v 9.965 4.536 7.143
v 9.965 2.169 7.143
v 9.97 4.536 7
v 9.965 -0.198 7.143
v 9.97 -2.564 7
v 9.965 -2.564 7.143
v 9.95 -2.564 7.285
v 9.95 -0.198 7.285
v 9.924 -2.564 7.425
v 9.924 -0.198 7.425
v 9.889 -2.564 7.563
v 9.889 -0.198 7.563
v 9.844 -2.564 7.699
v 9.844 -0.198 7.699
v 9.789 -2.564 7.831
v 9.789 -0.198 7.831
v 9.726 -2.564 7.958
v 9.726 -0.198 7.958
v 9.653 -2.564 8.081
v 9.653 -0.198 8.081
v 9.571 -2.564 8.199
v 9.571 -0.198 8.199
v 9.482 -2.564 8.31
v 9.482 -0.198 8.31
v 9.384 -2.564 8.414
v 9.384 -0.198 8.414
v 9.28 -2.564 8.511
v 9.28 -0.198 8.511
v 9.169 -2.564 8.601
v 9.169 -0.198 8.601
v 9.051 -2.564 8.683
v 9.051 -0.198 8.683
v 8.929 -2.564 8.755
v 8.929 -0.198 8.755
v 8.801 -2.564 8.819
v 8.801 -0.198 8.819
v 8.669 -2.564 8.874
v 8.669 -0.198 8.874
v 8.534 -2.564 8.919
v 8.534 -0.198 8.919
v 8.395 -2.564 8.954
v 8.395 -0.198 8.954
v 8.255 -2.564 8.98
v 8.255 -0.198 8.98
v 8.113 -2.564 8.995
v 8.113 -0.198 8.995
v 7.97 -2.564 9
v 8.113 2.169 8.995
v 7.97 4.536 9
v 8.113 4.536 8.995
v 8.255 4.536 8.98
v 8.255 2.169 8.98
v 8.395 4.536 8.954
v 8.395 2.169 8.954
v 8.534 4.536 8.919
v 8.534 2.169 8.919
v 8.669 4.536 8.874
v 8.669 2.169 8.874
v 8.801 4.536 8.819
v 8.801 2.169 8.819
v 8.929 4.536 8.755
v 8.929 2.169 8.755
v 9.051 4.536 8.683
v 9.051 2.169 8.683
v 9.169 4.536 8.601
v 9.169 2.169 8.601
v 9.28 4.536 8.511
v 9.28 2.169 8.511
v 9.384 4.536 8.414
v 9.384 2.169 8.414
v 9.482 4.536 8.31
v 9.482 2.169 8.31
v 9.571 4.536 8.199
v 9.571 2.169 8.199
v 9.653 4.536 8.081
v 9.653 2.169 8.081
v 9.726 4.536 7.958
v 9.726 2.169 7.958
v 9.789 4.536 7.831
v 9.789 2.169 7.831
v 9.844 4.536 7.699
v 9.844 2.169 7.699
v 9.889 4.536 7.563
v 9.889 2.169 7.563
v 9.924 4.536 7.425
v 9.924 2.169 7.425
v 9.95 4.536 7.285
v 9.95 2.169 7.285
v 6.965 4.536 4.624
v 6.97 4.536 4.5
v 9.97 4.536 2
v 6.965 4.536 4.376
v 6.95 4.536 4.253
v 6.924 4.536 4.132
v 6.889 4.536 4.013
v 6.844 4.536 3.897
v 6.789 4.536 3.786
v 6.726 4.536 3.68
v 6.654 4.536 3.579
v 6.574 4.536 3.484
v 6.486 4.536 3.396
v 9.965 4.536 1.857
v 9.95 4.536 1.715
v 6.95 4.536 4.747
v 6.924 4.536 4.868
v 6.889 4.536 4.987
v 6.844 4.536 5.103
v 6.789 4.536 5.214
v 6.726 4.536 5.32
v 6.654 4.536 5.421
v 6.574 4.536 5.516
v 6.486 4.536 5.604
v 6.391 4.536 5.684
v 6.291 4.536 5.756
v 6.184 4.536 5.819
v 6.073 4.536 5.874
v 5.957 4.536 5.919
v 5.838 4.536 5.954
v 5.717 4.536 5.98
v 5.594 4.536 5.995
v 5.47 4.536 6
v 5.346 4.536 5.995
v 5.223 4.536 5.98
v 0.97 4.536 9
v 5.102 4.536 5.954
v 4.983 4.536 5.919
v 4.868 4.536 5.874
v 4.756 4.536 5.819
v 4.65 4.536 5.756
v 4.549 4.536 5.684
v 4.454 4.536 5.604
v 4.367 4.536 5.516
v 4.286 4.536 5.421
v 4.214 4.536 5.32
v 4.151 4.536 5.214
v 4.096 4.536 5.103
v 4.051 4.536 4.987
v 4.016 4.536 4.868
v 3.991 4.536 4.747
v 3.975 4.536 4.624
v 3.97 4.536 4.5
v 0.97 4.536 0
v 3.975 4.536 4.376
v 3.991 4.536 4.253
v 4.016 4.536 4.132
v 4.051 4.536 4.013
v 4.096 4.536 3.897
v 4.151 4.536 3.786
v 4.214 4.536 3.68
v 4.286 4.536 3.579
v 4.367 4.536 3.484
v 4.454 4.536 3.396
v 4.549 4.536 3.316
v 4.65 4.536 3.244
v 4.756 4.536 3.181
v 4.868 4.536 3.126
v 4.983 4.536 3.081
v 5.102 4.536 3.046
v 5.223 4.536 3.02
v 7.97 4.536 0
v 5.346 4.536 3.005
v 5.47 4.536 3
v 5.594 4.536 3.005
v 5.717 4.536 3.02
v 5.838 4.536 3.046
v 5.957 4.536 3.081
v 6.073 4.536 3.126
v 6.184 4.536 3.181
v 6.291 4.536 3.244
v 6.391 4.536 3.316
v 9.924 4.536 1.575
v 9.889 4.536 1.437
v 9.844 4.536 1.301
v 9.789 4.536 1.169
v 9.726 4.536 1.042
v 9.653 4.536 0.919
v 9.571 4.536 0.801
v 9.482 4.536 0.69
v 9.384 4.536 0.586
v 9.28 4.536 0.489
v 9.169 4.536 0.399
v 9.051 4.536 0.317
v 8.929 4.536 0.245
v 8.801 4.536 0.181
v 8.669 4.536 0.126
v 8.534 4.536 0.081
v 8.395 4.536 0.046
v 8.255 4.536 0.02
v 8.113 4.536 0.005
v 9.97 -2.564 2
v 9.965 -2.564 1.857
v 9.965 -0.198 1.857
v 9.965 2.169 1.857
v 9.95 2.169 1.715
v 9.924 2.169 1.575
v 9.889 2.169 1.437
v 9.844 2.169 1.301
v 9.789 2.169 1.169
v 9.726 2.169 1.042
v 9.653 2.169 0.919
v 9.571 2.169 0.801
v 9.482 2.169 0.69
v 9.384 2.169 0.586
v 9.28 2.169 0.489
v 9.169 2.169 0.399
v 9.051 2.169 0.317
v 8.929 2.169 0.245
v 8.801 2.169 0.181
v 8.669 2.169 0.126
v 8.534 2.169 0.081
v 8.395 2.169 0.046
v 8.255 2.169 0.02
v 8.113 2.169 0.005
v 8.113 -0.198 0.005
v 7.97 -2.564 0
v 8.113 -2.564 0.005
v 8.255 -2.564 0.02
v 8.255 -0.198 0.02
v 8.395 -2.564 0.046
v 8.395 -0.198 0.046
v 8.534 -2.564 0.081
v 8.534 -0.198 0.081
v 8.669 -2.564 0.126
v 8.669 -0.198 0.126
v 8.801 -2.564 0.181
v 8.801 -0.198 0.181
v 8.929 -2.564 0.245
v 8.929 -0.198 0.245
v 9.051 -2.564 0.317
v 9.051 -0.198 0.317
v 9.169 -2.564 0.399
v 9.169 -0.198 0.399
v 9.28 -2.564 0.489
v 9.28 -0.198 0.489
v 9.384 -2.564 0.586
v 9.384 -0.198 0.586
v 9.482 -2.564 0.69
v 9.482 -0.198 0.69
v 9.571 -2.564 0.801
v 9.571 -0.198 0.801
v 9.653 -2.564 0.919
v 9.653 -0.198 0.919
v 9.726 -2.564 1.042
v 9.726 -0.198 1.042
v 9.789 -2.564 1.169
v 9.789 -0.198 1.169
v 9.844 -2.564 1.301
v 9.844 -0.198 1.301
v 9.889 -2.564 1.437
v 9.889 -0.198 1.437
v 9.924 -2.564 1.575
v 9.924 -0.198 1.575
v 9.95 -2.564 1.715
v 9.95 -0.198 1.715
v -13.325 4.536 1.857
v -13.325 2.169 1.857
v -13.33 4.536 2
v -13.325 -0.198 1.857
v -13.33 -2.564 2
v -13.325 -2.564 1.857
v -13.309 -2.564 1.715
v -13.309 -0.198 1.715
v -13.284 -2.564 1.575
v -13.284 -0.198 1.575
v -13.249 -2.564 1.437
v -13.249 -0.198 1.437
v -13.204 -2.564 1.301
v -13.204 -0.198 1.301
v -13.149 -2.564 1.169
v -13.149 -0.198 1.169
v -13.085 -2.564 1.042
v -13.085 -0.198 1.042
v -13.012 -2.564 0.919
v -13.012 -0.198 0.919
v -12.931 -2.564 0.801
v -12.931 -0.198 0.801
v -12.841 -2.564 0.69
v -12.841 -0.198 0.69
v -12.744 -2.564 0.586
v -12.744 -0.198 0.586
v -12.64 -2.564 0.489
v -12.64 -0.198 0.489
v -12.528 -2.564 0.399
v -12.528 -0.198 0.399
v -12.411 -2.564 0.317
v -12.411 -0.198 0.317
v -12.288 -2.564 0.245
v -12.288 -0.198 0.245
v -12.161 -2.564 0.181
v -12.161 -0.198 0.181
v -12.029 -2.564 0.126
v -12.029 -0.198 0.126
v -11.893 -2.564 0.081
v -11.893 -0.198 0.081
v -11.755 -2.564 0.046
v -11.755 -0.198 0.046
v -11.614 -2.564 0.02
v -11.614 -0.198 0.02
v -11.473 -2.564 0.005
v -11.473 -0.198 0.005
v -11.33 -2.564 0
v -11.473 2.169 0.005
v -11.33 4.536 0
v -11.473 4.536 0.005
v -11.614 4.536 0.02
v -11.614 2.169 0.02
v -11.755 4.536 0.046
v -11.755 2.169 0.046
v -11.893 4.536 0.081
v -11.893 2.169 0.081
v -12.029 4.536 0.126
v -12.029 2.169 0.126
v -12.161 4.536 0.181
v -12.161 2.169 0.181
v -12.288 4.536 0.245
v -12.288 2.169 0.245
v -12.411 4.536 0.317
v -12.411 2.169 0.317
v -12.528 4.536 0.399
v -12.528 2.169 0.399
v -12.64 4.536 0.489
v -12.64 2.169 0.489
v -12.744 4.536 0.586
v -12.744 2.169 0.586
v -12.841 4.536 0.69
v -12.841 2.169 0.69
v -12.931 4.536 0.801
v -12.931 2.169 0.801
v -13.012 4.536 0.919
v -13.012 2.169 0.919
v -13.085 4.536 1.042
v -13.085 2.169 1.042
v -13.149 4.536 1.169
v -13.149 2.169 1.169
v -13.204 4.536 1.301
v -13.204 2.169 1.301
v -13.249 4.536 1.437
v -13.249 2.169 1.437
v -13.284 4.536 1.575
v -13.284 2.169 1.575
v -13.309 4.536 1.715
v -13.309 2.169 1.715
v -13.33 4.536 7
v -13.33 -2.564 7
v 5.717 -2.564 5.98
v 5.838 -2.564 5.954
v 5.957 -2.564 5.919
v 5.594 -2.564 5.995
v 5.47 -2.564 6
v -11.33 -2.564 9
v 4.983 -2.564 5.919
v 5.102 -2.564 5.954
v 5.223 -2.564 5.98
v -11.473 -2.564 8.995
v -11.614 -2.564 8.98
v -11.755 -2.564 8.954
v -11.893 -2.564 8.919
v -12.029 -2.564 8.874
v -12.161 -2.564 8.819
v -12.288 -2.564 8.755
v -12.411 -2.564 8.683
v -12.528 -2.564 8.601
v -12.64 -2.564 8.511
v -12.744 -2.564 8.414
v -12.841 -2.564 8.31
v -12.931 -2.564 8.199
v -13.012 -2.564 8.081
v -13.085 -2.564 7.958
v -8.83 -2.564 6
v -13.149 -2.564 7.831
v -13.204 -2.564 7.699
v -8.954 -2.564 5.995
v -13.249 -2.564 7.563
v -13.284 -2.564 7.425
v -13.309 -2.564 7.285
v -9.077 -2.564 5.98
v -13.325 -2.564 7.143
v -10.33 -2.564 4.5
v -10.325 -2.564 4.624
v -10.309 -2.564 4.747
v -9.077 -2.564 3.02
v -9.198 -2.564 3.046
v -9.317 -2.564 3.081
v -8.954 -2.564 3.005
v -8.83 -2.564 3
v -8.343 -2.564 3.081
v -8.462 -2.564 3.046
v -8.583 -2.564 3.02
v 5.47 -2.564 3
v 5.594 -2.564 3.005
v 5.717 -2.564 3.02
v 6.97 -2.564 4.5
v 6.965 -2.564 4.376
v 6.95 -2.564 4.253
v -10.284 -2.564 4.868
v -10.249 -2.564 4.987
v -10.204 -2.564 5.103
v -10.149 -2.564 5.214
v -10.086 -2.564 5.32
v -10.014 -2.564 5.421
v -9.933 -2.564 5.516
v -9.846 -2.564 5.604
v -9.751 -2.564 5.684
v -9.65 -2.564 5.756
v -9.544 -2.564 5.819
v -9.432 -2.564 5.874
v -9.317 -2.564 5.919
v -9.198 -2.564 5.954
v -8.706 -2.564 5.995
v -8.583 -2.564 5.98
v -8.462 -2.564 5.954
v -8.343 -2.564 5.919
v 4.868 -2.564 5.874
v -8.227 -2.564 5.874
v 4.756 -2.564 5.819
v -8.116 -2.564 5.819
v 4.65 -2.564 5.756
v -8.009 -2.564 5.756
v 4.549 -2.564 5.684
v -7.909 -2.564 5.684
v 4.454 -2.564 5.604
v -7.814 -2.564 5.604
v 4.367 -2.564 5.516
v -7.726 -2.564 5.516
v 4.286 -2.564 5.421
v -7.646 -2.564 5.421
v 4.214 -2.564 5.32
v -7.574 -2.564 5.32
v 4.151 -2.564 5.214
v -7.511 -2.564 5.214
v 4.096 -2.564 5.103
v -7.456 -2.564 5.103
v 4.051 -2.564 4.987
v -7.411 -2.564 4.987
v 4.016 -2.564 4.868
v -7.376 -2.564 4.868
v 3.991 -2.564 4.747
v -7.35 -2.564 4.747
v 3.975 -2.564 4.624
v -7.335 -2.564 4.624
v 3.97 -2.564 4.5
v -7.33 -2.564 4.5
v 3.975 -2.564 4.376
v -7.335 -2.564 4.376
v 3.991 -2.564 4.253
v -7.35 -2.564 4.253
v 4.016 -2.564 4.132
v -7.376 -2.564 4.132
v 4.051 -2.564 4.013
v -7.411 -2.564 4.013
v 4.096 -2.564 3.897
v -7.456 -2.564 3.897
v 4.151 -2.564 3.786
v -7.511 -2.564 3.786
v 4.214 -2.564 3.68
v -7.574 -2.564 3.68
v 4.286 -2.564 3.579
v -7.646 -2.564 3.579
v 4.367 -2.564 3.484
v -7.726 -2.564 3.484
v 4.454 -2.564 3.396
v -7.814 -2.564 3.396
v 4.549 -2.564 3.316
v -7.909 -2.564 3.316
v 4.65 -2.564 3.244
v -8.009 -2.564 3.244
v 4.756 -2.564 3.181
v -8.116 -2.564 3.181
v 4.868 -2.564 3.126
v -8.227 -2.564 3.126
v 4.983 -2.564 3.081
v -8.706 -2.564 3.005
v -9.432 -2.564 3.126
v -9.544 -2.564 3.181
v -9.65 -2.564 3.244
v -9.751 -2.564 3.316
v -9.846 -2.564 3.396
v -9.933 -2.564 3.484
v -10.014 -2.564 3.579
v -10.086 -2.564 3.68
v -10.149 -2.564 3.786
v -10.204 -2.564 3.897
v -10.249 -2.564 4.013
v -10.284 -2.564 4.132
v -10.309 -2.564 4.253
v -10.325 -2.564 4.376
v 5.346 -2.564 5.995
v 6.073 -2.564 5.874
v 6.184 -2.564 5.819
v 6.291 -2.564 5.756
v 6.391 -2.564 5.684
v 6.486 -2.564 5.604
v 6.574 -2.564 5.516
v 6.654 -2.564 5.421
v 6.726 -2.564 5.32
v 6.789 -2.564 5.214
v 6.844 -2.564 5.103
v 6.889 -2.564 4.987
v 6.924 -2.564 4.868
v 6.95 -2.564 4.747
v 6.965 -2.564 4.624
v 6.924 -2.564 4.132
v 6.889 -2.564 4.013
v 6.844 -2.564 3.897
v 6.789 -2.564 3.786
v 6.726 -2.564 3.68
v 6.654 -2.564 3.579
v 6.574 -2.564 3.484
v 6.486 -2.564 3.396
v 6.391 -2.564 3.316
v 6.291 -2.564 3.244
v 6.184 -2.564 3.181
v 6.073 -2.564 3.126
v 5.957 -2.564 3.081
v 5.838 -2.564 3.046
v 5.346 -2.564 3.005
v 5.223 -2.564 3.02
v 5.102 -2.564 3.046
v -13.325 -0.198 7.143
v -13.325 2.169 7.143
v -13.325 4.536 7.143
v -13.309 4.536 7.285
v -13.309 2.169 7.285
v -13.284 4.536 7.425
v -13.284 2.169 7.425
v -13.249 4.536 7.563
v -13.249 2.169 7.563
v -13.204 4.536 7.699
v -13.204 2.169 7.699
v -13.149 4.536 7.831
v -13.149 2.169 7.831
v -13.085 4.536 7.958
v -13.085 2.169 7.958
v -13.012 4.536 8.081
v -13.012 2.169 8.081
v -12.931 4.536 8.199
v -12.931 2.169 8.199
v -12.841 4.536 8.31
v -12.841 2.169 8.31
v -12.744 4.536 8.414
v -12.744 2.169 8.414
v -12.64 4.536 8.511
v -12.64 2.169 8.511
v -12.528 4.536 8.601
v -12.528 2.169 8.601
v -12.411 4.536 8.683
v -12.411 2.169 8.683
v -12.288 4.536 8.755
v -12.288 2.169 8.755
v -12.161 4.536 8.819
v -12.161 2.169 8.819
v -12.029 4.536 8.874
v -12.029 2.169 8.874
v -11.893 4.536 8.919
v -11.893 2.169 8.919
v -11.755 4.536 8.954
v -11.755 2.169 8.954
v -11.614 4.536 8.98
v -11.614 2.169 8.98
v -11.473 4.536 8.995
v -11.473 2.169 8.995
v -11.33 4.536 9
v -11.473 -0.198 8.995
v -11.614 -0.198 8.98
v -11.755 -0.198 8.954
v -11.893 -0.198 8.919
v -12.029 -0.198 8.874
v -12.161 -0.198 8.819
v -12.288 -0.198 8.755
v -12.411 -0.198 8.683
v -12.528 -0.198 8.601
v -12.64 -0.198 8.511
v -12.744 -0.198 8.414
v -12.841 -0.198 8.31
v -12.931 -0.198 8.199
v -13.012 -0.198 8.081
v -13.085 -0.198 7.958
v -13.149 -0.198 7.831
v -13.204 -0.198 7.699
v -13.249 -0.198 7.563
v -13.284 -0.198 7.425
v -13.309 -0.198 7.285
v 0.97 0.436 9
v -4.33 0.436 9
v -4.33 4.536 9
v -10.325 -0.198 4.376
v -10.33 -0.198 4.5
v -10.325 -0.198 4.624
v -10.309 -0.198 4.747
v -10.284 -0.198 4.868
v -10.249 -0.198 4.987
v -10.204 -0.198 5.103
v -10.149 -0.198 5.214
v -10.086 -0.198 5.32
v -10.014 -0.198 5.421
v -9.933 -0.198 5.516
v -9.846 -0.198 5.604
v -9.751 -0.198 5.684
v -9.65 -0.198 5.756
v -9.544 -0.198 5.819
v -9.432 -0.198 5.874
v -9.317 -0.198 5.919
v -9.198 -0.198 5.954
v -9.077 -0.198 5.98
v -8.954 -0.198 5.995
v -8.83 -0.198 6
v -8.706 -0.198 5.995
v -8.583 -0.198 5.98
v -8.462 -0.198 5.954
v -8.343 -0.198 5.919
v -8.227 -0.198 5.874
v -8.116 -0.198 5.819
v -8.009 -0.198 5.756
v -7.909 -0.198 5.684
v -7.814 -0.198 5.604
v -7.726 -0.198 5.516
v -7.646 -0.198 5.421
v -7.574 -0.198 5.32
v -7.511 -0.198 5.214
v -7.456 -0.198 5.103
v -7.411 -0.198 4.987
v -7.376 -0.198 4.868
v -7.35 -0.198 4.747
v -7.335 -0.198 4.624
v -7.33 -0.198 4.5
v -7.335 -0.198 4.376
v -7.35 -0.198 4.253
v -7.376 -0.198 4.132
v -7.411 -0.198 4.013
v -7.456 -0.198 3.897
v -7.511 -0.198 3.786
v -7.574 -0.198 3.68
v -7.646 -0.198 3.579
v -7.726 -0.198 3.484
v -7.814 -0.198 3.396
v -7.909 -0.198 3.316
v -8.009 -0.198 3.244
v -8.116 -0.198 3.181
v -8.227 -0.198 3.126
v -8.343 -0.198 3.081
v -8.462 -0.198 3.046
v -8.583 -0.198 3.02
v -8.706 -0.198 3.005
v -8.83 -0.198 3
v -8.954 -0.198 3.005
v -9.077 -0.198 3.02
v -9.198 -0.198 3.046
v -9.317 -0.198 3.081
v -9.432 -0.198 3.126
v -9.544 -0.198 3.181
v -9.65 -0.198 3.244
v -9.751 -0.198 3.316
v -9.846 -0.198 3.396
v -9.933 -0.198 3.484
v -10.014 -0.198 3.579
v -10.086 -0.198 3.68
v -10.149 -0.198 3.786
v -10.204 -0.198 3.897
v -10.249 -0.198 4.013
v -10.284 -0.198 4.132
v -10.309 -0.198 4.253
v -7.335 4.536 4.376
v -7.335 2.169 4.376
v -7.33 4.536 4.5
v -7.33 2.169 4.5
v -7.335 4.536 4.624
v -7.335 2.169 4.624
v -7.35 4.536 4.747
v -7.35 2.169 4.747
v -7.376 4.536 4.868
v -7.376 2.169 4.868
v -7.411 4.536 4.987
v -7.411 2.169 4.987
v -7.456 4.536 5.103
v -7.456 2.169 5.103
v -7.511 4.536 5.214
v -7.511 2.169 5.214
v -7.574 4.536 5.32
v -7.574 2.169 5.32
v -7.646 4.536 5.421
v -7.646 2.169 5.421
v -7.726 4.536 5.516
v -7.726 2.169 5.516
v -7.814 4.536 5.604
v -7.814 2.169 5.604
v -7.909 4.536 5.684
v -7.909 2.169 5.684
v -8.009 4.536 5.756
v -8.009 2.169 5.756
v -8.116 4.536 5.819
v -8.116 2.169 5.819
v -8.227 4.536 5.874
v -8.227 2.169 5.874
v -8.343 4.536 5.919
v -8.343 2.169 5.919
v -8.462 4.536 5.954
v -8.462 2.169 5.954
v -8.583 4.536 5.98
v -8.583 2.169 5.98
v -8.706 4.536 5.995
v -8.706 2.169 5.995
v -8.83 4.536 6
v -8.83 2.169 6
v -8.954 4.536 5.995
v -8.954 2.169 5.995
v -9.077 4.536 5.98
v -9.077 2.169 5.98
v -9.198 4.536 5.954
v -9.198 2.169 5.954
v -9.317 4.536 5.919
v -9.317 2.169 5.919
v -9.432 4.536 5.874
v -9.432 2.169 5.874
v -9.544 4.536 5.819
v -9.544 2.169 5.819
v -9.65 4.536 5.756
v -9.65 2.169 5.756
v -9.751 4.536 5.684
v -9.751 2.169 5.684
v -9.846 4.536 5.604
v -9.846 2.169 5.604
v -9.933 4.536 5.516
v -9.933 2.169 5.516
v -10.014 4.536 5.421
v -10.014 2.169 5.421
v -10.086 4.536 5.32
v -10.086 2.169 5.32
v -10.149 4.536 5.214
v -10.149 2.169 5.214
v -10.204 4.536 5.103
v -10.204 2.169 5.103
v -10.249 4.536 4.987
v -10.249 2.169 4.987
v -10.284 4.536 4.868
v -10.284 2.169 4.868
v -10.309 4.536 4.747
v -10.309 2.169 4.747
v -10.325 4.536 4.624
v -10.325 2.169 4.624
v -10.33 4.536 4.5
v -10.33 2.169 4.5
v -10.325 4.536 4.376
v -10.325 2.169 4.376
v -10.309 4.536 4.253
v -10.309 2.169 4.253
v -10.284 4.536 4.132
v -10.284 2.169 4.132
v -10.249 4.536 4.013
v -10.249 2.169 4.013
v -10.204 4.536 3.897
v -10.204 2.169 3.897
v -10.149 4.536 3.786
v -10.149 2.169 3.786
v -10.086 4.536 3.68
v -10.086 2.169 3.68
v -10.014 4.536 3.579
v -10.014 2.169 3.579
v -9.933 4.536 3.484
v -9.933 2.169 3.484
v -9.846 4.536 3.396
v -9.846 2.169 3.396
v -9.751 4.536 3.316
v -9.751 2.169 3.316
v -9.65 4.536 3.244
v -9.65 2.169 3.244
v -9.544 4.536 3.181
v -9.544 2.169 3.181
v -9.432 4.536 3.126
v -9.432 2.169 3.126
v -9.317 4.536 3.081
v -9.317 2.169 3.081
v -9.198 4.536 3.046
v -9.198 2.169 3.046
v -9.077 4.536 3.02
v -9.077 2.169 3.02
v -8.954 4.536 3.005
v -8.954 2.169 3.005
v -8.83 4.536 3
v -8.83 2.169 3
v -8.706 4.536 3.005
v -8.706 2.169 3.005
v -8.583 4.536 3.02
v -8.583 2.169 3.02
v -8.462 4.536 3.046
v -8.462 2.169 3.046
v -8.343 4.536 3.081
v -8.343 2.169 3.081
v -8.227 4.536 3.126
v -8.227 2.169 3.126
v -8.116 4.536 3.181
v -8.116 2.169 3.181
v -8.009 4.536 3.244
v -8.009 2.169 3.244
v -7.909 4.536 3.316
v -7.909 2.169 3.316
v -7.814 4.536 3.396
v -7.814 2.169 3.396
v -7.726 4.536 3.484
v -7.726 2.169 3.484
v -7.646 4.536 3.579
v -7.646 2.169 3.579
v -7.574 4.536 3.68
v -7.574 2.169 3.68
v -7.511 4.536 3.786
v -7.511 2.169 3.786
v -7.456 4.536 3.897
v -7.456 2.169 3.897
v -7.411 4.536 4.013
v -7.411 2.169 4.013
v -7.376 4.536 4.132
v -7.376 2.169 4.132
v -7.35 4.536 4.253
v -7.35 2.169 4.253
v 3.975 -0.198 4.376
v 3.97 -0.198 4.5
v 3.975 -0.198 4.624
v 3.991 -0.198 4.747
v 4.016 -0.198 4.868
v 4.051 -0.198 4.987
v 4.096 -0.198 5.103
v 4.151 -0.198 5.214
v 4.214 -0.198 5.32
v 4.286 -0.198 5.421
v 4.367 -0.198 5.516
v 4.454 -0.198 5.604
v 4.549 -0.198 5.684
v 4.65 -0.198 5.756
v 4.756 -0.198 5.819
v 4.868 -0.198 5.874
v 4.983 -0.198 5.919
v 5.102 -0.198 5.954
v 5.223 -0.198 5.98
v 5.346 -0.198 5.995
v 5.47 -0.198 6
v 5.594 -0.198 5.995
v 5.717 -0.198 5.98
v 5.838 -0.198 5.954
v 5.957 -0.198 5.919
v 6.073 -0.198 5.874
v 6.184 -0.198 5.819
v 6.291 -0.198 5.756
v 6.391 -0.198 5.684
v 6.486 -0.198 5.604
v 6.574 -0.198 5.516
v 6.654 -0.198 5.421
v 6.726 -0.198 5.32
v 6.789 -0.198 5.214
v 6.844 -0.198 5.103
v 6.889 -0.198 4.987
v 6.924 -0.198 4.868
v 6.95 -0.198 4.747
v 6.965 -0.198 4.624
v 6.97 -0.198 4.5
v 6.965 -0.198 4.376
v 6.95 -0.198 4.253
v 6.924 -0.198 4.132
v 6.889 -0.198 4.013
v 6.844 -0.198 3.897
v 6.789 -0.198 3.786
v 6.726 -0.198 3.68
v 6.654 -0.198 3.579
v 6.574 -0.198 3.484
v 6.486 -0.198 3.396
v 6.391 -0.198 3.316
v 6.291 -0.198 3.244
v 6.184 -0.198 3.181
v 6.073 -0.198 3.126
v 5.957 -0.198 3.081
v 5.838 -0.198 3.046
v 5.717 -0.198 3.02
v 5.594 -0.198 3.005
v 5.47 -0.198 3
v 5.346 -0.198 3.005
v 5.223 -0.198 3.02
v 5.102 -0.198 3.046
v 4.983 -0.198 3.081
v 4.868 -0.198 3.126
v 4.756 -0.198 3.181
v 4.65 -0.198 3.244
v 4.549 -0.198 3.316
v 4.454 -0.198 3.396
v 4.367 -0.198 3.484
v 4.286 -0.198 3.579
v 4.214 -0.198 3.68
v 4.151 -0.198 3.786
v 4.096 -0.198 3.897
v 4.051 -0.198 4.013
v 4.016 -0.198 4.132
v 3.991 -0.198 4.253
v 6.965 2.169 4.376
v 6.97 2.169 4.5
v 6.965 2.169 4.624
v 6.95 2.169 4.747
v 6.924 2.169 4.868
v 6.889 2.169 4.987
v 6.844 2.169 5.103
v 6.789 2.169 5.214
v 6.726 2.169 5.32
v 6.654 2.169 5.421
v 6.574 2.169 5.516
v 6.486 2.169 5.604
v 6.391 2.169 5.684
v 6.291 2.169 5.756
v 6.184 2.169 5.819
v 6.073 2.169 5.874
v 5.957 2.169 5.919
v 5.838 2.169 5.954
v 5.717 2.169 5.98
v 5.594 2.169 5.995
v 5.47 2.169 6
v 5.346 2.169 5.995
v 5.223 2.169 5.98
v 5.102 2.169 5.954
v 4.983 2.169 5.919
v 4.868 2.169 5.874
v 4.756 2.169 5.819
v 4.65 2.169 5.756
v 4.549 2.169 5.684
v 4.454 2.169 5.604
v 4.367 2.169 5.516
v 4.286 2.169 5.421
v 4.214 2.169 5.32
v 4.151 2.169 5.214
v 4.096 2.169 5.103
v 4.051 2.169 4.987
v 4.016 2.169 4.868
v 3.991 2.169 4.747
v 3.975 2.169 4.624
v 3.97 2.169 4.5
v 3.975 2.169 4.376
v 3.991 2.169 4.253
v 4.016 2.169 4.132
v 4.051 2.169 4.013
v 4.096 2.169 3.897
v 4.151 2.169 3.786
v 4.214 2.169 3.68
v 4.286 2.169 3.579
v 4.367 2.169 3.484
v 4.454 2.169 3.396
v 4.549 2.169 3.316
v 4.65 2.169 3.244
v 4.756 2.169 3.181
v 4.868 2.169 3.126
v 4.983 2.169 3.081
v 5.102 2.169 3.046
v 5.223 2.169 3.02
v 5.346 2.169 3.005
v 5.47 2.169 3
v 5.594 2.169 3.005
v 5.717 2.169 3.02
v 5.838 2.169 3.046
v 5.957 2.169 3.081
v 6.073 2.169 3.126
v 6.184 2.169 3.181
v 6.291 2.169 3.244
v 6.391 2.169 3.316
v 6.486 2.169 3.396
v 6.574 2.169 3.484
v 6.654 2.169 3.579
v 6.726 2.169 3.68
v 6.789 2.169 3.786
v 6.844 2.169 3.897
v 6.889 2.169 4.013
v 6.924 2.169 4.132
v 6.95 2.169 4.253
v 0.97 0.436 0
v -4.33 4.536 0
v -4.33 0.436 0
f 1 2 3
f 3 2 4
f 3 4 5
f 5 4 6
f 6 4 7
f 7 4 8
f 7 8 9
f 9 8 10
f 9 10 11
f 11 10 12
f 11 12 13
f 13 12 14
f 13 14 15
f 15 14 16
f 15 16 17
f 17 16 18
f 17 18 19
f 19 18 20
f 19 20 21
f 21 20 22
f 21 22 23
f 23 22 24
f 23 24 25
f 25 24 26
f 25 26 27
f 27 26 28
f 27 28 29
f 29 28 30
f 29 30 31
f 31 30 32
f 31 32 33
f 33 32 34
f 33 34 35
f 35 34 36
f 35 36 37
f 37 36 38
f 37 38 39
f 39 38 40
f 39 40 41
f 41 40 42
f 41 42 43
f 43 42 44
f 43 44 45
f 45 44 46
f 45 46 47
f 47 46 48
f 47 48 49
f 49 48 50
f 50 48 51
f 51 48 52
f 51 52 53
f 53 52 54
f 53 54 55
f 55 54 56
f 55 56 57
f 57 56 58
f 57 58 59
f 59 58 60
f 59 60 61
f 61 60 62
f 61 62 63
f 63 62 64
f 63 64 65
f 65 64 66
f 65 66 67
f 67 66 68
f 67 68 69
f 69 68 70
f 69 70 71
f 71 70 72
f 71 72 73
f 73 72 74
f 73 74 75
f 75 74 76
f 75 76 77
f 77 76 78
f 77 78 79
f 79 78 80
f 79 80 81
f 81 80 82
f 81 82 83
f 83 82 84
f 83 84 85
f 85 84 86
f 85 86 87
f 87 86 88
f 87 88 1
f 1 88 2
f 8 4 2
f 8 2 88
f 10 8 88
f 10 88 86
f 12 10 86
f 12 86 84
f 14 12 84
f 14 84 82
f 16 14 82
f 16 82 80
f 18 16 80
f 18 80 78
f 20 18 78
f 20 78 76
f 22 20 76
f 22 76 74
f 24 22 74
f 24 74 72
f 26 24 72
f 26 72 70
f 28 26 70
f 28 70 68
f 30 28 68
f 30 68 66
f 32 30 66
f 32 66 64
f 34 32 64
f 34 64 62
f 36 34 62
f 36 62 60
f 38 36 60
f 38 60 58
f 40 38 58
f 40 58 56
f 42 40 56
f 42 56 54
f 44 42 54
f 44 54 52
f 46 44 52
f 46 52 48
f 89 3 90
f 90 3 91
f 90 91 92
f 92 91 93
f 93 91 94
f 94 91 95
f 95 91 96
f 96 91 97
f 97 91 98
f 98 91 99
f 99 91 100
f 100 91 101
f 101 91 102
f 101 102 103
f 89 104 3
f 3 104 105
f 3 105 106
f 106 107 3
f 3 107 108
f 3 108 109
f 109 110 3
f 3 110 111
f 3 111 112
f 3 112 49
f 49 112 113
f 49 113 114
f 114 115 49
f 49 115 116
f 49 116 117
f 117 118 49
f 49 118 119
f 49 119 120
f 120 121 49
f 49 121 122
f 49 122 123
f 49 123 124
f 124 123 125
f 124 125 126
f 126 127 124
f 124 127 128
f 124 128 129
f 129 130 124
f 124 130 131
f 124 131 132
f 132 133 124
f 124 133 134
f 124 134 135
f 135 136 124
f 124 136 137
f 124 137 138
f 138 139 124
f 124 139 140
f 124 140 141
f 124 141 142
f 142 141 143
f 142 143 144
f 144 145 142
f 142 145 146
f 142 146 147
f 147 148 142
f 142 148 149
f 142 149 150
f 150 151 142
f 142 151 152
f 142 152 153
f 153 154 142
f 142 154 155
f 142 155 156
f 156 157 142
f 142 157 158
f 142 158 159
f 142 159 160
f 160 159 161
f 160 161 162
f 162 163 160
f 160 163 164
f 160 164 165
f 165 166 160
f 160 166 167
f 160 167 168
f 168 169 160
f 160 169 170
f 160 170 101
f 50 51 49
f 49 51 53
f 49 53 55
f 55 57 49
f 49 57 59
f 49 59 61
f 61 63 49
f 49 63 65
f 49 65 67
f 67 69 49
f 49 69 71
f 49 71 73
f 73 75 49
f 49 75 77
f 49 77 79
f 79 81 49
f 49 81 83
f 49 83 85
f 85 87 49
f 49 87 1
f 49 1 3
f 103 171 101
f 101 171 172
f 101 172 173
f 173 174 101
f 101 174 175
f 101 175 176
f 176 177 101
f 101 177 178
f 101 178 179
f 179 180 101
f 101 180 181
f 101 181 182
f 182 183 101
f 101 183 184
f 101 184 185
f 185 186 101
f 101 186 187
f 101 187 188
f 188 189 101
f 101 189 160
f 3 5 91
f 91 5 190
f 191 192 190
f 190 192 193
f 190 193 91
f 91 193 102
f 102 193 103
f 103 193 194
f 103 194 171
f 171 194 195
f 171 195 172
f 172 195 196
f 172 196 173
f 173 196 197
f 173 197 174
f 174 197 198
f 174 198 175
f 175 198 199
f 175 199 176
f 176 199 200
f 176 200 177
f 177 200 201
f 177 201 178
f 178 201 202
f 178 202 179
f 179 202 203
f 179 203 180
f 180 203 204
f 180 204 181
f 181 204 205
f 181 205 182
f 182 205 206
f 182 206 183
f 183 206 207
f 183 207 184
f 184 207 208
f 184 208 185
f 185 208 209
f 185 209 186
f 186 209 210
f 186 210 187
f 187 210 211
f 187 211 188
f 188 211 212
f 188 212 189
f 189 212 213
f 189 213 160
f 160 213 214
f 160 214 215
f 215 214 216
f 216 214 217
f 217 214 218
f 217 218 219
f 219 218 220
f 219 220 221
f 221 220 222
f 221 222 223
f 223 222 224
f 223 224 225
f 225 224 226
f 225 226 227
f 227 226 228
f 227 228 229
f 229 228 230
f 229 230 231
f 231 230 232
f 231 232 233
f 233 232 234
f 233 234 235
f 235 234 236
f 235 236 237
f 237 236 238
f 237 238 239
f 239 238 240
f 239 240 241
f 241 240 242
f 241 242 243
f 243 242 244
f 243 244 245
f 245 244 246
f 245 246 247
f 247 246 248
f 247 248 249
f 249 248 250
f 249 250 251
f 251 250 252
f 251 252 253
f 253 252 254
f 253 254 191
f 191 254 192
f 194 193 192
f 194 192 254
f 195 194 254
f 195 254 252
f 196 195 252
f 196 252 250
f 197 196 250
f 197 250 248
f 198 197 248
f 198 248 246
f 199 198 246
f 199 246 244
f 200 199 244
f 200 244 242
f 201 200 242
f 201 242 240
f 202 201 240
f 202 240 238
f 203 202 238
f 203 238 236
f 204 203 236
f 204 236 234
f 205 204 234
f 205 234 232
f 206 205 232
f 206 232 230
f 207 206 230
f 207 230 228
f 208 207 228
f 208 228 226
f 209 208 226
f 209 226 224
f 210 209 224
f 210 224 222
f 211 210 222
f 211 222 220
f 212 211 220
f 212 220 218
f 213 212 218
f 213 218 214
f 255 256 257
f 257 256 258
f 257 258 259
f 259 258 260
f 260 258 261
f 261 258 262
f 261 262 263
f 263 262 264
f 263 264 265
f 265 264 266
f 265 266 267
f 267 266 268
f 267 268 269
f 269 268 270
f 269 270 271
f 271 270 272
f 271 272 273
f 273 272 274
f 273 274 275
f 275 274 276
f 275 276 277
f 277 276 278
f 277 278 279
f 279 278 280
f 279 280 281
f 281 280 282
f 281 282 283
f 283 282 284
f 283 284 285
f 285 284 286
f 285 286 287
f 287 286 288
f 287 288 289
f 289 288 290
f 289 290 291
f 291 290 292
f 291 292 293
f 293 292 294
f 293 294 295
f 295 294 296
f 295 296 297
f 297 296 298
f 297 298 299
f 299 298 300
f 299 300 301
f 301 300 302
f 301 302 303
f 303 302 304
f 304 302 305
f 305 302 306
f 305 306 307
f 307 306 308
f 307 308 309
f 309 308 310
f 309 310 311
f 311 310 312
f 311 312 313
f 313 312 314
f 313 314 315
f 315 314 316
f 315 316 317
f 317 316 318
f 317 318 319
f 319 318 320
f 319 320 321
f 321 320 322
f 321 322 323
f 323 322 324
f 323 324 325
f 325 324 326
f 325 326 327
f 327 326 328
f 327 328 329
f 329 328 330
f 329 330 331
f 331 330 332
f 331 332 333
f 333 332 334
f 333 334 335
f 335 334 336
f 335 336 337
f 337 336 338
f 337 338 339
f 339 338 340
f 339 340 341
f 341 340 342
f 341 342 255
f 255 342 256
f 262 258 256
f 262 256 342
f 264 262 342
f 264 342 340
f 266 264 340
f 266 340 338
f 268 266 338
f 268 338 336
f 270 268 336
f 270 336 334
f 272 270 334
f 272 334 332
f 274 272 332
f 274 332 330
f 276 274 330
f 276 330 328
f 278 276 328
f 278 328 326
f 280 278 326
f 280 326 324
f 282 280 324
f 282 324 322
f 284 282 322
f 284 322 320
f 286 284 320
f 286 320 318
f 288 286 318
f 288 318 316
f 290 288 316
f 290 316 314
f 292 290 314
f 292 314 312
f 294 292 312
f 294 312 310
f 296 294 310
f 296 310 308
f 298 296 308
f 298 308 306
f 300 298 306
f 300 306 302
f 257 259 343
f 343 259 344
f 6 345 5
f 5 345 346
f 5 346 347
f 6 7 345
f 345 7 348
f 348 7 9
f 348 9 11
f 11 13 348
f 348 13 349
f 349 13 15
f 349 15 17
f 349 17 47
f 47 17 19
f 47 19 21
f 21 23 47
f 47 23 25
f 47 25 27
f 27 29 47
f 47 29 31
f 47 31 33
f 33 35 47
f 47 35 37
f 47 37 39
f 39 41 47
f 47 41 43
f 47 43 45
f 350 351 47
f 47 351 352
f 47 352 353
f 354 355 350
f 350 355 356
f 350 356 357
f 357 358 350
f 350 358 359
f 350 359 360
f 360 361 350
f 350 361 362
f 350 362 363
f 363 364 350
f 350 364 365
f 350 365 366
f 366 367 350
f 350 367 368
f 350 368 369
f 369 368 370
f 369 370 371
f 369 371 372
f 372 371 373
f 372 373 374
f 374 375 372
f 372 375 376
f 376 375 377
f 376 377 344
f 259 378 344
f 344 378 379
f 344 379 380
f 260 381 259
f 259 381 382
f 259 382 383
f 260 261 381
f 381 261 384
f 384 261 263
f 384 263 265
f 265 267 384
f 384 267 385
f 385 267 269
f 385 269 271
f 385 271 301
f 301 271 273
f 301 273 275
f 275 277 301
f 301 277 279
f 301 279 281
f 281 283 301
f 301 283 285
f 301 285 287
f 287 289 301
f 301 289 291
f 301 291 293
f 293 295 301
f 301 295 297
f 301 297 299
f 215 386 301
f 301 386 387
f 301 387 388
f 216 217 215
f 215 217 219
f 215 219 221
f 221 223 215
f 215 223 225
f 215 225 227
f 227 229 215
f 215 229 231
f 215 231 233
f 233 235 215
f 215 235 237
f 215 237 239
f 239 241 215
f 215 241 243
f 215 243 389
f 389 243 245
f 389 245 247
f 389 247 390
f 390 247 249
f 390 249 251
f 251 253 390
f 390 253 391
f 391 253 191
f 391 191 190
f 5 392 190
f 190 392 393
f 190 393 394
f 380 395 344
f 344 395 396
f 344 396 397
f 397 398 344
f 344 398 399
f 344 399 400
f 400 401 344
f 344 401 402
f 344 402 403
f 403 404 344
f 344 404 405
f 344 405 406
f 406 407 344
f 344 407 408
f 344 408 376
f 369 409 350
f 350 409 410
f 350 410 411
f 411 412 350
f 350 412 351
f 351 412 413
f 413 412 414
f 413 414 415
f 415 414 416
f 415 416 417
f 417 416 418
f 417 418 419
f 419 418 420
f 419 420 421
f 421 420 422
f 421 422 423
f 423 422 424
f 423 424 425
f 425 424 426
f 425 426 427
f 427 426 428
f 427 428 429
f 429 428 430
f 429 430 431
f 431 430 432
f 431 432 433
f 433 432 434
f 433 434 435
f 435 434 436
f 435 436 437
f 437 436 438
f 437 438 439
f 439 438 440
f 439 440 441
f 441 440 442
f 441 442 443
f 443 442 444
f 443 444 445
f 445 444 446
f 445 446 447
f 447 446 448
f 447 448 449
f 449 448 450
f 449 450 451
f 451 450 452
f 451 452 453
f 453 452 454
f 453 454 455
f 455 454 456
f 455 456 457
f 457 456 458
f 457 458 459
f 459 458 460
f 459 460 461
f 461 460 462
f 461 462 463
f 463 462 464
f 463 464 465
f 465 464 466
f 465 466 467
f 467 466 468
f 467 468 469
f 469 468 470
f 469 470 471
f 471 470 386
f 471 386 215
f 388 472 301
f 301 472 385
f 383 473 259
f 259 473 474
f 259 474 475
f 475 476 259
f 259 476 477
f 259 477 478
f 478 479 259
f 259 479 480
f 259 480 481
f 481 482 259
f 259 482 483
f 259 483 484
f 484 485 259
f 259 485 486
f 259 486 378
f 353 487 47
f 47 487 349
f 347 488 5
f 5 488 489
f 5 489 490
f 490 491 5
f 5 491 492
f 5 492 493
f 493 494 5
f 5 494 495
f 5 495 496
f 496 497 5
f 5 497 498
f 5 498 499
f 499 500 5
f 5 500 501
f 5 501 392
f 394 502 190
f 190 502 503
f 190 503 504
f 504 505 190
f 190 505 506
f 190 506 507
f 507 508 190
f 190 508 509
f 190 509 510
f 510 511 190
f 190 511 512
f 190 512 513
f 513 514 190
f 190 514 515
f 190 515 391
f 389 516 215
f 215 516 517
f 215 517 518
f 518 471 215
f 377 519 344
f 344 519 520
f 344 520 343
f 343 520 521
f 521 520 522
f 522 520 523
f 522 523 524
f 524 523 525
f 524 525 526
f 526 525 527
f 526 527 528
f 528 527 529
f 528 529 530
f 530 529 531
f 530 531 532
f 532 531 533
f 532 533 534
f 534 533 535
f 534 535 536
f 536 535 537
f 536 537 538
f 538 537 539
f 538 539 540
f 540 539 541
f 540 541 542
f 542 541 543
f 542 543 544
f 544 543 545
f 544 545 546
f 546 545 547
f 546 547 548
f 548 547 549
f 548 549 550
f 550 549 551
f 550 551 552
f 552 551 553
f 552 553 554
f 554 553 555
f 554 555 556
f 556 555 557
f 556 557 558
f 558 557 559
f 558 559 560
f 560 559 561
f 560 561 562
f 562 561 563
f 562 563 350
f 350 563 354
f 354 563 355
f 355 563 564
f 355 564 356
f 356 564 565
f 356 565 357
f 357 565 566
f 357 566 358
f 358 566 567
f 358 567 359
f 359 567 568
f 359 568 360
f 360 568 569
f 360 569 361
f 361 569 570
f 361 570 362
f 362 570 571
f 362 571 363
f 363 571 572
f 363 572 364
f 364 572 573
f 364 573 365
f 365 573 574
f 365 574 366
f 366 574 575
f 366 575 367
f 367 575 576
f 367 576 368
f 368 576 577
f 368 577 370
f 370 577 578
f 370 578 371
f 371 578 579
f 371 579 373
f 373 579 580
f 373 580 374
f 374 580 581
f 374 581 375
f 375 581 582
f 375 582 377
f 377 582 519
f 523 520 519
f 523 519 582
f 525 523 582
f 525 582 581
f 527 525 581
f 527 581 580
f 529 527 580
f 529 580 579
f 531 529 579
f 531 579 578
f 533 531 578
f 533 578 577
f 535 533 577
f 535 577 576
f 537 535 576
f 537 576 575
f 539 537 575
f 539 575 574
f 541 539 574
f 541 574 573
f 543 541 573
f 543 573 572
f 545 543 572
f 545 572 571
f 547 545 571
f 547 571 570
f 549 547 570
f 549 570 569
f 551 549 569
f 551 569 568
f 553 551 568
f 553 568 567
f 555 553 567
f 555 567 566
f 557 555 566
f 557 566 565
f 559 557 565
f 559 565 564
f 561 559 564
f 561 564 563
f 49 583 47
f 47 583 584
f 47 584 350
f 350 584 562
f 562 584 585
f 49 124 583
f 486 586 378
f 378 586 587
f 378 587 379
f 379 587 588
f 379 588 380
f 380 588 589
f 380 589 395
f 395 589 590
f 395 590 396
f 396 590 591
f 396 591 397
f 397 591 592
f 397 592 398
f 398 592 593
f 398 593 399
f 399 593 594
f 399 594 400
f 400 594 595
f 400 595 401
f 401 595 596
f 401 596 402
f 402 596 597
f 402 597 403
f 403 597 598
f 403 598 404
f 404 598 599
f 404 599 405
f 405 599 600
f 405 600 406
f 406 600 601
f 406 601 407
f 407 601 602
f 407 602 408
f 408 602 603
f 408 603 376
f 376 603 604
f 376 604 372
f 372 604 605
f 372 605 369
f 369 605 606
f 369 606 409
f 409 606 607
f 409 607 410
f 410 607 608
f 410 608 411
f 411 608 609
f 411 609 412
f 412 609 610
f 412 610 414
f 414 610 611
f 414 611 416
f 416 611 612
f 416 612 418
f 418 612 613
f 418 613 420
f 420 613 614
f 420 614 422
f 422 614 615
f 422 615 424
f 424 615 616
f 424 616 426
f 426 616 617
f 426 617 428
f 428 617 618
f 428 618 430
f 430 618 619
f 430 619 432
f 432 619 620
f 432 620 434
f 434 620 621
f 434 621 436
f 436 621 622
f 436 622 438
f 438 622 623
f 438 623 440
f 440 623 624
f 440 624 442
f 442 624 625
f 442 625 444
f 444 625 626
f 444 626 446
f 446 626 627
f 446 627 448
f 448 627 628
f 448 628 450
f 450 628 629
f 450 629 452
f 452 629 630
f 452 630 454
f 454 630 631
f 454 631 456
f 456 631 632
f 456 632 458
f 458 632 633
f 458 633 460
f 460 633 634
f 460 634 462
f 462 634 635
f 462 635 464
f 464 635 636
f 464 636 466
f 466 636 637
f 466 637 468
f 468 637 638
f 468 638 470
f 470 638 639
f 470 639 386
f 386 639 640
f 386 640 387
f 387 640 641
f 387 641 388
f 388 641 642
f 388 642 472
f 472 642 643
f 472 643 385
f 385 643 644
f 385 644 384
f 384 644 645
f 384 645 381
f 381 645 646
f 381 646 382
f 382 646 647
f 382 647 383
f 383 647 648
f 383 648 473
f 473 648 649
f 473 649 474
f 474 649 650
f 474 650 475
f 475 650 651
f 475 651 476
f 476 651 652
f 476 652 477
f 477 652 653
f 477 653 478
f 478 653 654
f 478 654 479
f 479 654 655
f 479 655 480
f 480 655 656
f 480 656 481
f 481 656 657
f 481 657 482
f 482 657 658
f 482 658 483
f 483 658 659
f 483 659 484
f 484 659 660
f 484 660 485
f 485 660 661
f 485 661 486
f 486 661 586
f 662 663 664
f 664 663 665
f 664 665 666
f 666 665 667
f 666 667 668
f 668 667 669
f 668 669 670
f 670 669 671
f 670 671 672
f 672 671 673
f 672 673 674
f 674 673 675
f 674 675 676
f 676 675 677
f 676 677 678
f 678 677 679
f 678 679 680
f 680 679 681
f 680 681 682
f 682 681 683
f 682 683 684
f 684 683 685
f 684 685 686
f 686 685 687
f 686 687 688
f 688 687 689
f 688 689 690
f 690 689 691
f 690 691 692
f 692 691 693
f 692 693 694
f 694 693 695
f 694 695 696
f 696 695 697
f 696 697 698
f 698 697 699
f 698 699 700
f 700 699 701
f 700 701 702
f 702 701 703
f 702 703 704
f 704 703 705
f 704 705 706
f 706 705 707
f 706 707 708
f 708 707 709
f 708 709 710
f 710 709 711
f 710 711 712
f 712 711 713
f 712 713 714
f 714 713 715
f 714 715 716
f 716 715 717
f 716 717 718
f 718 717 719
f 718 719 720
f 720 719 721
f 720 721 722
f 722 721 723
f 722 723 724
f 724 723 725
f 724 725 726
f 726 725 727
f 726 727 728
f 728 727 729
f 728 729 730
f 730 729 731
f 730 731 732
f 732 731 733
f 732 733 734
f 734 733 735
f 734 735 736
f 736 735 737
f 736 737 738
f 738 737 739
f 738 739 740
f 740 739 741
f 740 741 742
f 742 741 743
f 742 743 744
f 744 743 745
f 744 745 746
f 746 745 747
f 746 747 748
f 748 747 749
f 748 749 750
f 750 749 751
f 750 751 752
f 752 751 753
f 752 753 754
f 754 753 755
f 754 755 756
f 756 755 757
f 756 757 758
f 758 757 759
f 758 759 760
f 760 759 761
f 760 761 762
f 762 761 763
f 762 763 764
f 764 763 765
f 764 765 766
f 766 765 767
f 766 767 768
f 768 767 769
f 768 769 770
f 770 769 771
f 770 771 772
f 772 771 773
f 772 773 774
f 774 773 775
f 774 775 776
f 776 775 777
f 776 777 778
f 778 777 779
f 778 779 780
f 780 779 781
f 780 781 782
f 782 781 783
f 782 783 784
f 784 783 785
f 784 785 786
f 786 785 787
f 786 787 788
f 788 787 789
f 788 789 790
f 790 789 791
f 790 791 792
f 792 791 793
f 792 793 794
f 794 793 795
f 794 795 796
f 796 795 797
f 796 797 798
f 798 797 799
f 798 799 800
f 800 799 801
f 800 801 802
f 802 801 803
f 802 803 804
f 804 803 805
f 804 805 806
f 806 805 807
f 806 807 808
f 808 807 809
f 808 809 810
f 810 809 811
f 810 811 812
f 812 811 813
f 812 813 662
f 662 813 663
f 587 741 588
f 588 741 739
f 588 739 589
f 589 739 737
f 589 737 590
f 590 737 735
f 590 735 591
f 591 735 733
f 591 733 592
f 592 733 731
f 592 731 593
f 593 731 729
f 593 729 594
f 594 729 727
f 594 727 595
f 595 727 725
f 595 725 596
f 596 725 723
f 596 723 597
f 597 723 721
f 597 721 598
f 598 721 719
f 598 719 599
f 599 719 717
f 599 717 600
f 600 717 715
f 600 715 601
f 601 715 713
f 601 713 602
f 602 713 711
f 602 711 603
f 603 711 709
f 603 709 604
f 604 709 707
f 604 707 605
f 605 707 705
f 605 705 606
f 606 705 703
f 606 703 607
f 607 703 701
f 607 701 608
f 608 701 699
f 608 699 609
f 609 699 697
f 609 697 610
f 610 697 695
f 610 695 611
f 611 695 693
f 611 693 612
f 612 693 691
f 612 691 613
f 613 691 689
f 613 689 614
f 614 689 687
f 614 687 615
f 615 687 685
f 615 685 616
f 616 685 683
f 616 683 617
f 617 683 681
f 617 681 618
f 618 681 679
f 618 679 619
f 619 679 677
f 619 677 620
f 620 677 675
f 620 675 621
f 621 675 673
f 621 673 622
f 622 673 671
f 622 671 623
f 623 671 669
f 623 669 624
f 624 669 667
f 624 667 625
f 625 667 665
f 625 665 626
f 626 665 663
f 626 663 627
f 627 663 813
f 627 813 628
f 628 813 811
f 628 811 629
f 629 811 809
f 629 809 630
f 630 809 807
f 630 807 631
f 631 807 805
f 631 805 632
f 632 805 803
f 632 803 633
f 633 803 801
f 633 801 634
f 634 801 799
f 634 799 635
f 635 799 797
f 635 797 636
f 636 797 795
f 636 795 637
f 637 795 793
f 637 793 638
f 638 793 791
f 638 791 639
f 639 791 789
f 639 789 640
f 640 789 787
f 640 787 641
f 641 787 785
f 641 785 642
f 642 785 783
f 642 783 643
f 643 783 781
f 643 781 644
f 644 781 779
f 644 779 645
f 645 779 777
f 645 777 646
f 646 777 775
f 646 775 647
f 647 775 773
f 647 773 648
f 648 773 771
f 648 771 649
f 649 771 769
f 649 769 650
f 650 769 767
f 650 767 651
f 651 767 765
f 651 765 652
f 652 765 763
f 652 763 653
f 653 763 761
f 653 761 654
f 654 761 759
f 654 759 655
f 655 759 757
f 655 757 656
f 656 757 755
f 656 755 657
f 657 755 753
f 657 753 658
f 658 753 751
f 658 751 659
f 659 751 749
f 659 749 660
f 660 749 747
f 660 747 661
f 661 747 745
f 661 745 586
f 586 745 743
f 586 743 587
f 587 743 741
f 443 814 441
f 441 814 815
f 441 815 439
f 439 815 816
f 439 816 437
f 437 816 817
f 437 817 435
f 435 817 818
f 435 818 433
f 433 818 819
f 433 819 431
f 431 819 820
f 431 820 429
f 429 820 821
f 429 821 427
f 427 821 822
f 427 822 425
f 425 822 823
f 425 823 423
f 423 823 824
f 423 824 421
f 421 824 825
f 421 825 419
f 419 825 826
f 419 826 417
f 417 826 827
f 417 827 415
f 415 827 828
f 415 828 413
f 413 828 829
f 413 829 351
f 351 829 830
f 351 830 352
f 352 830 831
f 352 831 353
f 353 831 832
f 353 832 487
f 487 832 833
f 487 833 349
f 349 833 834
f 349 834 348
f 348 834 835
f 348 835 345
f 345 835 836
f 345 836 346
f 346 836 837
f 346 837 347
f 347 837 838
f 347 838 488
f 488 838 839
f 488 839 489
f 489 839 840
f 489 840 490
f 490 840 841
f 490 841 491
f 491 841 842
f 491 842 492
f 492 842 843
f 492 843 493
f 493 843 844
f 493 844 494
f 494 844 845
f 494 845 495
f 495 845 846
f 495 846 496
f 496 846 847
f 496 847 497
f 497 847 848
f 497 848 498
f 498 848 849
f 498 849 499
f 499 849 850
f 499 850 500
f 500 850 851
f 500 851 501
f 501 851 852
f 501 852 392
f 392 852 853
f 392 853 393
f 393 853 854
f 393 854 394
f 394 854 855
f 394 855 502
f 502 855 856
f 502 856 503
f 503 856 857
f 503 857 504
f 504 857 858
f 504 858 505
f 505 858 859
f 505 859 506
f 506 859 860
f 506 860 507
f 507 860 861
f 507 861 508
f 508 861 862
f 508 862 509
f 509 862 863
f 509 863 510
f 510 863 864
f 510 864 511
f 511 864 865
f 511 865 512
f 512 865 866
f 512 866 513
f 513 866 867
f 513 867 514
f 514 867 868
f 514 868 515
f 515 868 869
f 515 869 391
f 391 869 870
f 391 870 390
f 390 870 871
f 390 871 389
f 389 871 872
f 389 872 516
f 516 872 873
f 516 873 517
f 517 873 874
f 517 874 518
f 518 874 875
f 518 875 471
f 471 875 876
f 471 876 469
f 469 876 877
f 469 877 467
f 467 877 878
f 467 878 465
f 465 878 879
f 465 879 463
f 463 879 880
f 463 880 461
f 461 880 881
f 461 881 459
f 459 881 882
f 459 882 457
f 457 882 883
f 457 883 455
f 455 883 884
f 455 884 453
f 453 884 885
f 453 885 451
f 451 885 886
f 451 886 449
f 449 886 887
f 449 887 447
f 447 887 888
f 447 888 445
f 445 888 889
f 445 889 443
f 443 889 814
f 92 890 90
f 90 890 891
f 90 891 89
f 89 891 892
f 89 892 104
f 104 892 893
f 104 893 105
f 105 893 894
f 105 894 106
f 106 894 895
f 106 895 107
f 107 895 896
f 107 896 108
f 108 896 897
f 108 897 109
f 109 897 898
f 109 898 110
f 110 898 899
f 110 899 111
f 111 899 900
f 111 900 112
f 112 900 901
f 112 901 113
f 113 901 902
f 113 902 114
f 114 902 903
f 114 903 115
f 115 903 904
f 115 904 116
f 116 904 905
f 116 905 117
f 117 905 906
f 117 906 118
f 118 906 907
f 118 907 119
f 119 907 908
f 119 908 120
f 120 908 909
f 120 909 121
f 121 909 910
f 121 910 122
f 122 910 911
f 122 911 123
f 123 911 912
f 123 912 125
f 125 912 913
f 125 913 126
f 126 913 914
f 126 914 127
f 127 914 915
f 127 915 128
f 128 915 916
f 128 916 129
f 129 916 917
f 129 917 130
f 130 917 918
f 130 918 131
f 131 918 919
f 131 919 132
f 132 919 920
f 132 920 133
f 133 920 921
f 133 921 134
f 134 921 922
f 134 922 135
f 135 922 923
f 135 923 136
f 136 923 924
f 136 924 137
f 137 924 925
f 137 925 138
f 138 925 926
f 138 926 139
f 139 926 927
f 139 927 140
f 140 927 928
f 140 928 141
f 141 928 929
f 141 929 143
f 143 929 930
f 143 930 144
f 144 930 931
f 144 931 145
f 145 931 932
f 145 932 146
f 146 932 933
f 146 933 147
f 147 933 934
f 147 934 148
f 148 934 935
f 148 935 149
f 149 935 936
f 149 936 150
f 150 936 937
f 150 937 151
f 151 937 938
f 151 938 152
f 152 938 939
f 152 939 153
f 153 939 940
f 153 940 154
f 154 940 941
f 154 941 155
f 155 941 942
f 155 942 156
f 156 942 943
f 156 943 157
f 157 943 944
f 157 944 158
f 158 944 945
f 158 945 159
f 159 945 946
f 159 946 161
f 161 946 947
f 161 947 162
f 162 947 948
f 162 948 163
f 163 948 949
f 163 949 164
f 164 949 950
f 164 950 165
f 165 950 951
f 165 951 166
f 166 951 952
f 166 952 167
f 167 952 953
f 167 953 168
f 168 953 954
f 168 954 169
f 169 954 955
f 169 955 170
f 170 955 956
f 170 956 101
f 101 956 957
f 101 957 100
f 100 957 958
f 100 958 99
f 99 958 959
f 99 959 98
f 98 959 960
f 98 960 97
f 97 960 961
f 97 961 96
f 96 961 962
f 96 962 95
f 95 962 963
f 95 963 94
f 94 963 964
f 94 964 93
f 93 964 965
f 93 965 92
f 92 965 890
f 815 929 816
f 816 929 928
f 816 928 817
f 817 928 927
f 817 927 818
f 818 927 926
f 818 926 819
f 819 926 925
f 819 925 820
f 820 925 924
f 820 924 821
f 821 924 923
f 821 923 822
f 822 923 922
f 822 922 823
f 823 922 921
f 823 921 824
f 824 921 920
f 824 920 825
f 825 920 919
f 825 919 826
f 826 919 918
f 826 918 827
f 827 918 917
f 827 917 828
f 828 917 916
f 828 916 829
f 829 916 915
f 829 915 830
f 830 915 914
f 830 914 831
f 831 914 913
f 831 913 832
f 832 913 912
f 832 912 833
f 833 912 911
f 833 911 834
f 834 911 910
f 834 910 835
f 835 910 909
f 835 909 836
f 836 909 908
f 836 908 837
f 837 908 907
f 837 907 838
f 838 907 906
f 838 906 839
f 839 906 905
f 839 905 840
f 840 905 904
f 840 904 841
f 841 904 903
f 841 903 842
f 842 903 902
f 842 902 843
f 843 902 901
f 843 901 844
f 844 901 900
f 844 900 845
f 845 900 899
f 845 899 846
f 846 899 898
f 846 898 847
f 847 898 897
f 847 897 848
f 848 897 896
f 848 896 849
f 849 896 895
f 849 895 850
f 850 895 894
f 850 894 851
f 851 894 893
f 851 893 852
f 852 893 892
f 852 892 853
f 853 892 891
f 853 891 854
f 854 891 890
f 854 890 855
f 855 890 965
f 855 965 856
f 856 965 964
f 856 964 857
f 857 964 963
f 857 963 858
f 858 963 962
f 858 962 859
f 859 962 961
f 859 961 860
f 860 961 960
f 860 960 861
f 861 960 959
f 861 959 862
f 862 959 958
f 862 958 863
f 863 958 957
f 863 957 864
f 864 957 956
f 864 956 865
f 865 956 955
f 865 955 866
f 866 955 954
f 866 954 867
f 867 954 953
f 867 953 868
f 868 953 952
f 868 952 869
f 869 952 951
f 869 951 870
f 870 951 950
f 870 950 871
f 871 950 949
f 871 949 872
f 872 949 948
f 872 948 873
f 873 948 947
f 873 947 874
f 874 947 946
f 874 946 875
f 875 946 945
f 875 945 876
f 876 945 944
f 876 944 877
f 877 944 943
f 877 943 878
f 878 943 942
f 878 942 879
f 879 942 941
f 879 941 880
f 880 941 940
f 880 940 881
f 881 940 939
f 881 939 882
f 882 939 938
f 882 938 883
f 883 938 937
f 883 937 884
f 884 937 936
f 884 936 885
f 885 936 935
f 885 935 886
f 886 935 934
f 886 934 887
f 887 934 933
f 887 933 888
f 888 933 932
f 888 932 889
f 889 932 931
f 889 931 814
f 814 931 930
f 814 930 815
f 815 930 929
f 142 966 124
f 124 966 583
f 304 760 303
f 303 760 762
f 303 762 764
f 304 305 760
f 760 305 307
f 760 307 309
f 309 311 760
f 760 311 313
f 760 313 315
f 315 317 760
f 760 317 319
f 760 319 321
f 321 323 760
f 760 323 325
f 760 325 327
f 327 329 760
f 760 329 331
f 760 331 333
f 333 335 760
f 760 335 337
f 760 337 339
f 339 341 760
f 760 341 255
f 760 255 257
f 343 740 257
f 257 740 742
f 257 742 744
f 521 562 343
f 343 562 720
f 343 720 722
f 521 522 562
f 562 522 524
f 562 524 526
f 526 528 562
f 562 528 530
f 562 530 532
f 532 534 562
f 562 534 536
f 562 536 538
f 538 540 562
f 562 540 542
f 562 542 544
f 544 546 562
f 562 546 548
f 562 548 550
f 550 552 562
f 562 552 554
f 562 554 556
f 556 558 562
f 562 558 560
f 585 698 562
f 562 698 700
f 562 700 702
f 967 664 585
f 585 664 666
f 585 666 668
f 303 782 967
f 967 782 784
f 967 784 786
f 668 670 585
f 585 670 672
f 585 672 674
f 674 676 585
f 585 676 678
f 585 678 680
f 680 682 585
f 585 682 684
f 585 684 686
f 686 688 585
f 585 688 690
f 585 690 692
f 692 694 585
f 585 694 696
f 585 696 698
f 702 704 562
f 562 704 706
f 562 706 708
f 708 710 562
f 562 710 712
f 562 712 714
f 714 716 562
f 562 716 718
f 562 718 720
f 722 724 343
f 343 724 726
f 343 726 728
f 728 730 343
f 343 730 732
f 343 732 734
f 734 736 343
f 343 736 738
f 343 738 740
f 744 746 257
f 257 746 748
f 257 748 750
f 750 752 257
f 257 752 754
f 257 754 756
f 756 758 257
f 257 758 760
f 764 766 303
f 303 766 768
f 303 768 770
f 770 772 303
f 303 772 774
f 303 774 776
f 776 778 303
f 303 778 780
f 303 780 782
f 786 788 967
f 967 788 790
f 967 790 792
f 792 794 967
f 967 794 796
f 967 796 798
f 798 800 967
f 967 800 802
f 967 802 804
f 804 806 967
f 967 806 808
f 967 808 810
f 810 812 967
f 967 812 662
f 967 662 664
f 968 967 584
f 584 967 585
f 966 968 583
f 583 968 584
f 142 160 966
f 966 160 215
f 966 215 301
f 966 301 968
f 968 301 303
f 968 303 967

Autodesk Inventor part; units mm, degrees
ref_plane "YZ Plane" through (0, 0, 0) normal (1, 0, 0) x (0, 1, 0)
ref_plane "XZ Plane" through (0, 0, 0) normal (0, 1, 0) x (-1, 0, 0)
ref_plane "XY Plane" through (0, 0, 0) normal (0, 0, 1) x (1, 0, 0)
sketch "Sketch1" plane through (0, 0, 0) normal (0, 0, 1) x (1, 0, 0)
  line L0 (-4.3298, 0.4357) -> (0.9702, 0.4357)
  line L1 (0.9702, 0.4357) -> (0.9702, 4.5357)
  line L2 (-4.3298, 0.4357) -> (-4.3298, 4.5357)
  line L3 (-4.3298, 4.5357) -> (-13.3298, 4.5357)
  line L4 (0.9702, 4.5357) -> (9.9702, 4.5357)
  line L5 (-13.3298, 4.5357) -> (-13.3298, -2.5643)
  line L6 (-13.3298, -2.5643) -> (9.9702, -2.5643)
  line L7 (9.9702, -2.5643) -> (9.9702, 4.5357)
  point P0 (0, 0)
  dimension "d0" = 5.3
  dimension "d1" = 4.1
  dimension "d2" = 9
  dimension "d3" = 9
  dimension "d4" = 3
  dimension "d5" = 4.1
extrude "Extrusion1" add sketch "Sketch1" along normal blind 9
sketch "Sketch2" plane through (-13.3298, 4.5357, 0) normal (0, 1, 0) x (1, 0, 0)
  line L0 (0, 0) -> (9, 0) projected
  line L1 (0, 0) -> (0, -9) projected
  line L2 (9, -9) -> (0, -9) projected
  line L3 (9, 0) -> (9, -9) projected
  line L4 (14.3, 0) -> (23.3, 0) projected
  line L5 (14.3, 0) -> (14.3, -9) projected
  line L6 (23.3, -9) -> (14.3, -9) projected
  line L7 (23.3, 0) -> (23.3, -9) projected
  point P0 (13.3298, 0)
  point P1 (4.5, -4.5)
  point P2 (18.8, -4.5)
  dimension "d8" = 9
  dimension "d9" = 9
  dimension "d10" = 4.5
  dimension "d11" = 4.5
  dimension "d12" = 4.5
  dimension "d13" = 4.5
hole "Hole1" at (-8.8298, 4.5357, 4.5) at (5.4702, 4.5357, 4.5) direction (0, -1, 0) diameter 3 end through all
fillet "Fillet1" radius 2 4 edges at (-13.3298, 0.9857, 9) (-13.3298, 0.9857, 0) (9.9702, 0.9857, 0) (9.9702, 0.9857, 9)
equation "\"d5\" = d1"
equation "\"d12\" = d11"
equation "\"d13\" = d10"
properties part number "3DP_PLA_Measurement_Rail_Vibration_Motor_Clamp"
